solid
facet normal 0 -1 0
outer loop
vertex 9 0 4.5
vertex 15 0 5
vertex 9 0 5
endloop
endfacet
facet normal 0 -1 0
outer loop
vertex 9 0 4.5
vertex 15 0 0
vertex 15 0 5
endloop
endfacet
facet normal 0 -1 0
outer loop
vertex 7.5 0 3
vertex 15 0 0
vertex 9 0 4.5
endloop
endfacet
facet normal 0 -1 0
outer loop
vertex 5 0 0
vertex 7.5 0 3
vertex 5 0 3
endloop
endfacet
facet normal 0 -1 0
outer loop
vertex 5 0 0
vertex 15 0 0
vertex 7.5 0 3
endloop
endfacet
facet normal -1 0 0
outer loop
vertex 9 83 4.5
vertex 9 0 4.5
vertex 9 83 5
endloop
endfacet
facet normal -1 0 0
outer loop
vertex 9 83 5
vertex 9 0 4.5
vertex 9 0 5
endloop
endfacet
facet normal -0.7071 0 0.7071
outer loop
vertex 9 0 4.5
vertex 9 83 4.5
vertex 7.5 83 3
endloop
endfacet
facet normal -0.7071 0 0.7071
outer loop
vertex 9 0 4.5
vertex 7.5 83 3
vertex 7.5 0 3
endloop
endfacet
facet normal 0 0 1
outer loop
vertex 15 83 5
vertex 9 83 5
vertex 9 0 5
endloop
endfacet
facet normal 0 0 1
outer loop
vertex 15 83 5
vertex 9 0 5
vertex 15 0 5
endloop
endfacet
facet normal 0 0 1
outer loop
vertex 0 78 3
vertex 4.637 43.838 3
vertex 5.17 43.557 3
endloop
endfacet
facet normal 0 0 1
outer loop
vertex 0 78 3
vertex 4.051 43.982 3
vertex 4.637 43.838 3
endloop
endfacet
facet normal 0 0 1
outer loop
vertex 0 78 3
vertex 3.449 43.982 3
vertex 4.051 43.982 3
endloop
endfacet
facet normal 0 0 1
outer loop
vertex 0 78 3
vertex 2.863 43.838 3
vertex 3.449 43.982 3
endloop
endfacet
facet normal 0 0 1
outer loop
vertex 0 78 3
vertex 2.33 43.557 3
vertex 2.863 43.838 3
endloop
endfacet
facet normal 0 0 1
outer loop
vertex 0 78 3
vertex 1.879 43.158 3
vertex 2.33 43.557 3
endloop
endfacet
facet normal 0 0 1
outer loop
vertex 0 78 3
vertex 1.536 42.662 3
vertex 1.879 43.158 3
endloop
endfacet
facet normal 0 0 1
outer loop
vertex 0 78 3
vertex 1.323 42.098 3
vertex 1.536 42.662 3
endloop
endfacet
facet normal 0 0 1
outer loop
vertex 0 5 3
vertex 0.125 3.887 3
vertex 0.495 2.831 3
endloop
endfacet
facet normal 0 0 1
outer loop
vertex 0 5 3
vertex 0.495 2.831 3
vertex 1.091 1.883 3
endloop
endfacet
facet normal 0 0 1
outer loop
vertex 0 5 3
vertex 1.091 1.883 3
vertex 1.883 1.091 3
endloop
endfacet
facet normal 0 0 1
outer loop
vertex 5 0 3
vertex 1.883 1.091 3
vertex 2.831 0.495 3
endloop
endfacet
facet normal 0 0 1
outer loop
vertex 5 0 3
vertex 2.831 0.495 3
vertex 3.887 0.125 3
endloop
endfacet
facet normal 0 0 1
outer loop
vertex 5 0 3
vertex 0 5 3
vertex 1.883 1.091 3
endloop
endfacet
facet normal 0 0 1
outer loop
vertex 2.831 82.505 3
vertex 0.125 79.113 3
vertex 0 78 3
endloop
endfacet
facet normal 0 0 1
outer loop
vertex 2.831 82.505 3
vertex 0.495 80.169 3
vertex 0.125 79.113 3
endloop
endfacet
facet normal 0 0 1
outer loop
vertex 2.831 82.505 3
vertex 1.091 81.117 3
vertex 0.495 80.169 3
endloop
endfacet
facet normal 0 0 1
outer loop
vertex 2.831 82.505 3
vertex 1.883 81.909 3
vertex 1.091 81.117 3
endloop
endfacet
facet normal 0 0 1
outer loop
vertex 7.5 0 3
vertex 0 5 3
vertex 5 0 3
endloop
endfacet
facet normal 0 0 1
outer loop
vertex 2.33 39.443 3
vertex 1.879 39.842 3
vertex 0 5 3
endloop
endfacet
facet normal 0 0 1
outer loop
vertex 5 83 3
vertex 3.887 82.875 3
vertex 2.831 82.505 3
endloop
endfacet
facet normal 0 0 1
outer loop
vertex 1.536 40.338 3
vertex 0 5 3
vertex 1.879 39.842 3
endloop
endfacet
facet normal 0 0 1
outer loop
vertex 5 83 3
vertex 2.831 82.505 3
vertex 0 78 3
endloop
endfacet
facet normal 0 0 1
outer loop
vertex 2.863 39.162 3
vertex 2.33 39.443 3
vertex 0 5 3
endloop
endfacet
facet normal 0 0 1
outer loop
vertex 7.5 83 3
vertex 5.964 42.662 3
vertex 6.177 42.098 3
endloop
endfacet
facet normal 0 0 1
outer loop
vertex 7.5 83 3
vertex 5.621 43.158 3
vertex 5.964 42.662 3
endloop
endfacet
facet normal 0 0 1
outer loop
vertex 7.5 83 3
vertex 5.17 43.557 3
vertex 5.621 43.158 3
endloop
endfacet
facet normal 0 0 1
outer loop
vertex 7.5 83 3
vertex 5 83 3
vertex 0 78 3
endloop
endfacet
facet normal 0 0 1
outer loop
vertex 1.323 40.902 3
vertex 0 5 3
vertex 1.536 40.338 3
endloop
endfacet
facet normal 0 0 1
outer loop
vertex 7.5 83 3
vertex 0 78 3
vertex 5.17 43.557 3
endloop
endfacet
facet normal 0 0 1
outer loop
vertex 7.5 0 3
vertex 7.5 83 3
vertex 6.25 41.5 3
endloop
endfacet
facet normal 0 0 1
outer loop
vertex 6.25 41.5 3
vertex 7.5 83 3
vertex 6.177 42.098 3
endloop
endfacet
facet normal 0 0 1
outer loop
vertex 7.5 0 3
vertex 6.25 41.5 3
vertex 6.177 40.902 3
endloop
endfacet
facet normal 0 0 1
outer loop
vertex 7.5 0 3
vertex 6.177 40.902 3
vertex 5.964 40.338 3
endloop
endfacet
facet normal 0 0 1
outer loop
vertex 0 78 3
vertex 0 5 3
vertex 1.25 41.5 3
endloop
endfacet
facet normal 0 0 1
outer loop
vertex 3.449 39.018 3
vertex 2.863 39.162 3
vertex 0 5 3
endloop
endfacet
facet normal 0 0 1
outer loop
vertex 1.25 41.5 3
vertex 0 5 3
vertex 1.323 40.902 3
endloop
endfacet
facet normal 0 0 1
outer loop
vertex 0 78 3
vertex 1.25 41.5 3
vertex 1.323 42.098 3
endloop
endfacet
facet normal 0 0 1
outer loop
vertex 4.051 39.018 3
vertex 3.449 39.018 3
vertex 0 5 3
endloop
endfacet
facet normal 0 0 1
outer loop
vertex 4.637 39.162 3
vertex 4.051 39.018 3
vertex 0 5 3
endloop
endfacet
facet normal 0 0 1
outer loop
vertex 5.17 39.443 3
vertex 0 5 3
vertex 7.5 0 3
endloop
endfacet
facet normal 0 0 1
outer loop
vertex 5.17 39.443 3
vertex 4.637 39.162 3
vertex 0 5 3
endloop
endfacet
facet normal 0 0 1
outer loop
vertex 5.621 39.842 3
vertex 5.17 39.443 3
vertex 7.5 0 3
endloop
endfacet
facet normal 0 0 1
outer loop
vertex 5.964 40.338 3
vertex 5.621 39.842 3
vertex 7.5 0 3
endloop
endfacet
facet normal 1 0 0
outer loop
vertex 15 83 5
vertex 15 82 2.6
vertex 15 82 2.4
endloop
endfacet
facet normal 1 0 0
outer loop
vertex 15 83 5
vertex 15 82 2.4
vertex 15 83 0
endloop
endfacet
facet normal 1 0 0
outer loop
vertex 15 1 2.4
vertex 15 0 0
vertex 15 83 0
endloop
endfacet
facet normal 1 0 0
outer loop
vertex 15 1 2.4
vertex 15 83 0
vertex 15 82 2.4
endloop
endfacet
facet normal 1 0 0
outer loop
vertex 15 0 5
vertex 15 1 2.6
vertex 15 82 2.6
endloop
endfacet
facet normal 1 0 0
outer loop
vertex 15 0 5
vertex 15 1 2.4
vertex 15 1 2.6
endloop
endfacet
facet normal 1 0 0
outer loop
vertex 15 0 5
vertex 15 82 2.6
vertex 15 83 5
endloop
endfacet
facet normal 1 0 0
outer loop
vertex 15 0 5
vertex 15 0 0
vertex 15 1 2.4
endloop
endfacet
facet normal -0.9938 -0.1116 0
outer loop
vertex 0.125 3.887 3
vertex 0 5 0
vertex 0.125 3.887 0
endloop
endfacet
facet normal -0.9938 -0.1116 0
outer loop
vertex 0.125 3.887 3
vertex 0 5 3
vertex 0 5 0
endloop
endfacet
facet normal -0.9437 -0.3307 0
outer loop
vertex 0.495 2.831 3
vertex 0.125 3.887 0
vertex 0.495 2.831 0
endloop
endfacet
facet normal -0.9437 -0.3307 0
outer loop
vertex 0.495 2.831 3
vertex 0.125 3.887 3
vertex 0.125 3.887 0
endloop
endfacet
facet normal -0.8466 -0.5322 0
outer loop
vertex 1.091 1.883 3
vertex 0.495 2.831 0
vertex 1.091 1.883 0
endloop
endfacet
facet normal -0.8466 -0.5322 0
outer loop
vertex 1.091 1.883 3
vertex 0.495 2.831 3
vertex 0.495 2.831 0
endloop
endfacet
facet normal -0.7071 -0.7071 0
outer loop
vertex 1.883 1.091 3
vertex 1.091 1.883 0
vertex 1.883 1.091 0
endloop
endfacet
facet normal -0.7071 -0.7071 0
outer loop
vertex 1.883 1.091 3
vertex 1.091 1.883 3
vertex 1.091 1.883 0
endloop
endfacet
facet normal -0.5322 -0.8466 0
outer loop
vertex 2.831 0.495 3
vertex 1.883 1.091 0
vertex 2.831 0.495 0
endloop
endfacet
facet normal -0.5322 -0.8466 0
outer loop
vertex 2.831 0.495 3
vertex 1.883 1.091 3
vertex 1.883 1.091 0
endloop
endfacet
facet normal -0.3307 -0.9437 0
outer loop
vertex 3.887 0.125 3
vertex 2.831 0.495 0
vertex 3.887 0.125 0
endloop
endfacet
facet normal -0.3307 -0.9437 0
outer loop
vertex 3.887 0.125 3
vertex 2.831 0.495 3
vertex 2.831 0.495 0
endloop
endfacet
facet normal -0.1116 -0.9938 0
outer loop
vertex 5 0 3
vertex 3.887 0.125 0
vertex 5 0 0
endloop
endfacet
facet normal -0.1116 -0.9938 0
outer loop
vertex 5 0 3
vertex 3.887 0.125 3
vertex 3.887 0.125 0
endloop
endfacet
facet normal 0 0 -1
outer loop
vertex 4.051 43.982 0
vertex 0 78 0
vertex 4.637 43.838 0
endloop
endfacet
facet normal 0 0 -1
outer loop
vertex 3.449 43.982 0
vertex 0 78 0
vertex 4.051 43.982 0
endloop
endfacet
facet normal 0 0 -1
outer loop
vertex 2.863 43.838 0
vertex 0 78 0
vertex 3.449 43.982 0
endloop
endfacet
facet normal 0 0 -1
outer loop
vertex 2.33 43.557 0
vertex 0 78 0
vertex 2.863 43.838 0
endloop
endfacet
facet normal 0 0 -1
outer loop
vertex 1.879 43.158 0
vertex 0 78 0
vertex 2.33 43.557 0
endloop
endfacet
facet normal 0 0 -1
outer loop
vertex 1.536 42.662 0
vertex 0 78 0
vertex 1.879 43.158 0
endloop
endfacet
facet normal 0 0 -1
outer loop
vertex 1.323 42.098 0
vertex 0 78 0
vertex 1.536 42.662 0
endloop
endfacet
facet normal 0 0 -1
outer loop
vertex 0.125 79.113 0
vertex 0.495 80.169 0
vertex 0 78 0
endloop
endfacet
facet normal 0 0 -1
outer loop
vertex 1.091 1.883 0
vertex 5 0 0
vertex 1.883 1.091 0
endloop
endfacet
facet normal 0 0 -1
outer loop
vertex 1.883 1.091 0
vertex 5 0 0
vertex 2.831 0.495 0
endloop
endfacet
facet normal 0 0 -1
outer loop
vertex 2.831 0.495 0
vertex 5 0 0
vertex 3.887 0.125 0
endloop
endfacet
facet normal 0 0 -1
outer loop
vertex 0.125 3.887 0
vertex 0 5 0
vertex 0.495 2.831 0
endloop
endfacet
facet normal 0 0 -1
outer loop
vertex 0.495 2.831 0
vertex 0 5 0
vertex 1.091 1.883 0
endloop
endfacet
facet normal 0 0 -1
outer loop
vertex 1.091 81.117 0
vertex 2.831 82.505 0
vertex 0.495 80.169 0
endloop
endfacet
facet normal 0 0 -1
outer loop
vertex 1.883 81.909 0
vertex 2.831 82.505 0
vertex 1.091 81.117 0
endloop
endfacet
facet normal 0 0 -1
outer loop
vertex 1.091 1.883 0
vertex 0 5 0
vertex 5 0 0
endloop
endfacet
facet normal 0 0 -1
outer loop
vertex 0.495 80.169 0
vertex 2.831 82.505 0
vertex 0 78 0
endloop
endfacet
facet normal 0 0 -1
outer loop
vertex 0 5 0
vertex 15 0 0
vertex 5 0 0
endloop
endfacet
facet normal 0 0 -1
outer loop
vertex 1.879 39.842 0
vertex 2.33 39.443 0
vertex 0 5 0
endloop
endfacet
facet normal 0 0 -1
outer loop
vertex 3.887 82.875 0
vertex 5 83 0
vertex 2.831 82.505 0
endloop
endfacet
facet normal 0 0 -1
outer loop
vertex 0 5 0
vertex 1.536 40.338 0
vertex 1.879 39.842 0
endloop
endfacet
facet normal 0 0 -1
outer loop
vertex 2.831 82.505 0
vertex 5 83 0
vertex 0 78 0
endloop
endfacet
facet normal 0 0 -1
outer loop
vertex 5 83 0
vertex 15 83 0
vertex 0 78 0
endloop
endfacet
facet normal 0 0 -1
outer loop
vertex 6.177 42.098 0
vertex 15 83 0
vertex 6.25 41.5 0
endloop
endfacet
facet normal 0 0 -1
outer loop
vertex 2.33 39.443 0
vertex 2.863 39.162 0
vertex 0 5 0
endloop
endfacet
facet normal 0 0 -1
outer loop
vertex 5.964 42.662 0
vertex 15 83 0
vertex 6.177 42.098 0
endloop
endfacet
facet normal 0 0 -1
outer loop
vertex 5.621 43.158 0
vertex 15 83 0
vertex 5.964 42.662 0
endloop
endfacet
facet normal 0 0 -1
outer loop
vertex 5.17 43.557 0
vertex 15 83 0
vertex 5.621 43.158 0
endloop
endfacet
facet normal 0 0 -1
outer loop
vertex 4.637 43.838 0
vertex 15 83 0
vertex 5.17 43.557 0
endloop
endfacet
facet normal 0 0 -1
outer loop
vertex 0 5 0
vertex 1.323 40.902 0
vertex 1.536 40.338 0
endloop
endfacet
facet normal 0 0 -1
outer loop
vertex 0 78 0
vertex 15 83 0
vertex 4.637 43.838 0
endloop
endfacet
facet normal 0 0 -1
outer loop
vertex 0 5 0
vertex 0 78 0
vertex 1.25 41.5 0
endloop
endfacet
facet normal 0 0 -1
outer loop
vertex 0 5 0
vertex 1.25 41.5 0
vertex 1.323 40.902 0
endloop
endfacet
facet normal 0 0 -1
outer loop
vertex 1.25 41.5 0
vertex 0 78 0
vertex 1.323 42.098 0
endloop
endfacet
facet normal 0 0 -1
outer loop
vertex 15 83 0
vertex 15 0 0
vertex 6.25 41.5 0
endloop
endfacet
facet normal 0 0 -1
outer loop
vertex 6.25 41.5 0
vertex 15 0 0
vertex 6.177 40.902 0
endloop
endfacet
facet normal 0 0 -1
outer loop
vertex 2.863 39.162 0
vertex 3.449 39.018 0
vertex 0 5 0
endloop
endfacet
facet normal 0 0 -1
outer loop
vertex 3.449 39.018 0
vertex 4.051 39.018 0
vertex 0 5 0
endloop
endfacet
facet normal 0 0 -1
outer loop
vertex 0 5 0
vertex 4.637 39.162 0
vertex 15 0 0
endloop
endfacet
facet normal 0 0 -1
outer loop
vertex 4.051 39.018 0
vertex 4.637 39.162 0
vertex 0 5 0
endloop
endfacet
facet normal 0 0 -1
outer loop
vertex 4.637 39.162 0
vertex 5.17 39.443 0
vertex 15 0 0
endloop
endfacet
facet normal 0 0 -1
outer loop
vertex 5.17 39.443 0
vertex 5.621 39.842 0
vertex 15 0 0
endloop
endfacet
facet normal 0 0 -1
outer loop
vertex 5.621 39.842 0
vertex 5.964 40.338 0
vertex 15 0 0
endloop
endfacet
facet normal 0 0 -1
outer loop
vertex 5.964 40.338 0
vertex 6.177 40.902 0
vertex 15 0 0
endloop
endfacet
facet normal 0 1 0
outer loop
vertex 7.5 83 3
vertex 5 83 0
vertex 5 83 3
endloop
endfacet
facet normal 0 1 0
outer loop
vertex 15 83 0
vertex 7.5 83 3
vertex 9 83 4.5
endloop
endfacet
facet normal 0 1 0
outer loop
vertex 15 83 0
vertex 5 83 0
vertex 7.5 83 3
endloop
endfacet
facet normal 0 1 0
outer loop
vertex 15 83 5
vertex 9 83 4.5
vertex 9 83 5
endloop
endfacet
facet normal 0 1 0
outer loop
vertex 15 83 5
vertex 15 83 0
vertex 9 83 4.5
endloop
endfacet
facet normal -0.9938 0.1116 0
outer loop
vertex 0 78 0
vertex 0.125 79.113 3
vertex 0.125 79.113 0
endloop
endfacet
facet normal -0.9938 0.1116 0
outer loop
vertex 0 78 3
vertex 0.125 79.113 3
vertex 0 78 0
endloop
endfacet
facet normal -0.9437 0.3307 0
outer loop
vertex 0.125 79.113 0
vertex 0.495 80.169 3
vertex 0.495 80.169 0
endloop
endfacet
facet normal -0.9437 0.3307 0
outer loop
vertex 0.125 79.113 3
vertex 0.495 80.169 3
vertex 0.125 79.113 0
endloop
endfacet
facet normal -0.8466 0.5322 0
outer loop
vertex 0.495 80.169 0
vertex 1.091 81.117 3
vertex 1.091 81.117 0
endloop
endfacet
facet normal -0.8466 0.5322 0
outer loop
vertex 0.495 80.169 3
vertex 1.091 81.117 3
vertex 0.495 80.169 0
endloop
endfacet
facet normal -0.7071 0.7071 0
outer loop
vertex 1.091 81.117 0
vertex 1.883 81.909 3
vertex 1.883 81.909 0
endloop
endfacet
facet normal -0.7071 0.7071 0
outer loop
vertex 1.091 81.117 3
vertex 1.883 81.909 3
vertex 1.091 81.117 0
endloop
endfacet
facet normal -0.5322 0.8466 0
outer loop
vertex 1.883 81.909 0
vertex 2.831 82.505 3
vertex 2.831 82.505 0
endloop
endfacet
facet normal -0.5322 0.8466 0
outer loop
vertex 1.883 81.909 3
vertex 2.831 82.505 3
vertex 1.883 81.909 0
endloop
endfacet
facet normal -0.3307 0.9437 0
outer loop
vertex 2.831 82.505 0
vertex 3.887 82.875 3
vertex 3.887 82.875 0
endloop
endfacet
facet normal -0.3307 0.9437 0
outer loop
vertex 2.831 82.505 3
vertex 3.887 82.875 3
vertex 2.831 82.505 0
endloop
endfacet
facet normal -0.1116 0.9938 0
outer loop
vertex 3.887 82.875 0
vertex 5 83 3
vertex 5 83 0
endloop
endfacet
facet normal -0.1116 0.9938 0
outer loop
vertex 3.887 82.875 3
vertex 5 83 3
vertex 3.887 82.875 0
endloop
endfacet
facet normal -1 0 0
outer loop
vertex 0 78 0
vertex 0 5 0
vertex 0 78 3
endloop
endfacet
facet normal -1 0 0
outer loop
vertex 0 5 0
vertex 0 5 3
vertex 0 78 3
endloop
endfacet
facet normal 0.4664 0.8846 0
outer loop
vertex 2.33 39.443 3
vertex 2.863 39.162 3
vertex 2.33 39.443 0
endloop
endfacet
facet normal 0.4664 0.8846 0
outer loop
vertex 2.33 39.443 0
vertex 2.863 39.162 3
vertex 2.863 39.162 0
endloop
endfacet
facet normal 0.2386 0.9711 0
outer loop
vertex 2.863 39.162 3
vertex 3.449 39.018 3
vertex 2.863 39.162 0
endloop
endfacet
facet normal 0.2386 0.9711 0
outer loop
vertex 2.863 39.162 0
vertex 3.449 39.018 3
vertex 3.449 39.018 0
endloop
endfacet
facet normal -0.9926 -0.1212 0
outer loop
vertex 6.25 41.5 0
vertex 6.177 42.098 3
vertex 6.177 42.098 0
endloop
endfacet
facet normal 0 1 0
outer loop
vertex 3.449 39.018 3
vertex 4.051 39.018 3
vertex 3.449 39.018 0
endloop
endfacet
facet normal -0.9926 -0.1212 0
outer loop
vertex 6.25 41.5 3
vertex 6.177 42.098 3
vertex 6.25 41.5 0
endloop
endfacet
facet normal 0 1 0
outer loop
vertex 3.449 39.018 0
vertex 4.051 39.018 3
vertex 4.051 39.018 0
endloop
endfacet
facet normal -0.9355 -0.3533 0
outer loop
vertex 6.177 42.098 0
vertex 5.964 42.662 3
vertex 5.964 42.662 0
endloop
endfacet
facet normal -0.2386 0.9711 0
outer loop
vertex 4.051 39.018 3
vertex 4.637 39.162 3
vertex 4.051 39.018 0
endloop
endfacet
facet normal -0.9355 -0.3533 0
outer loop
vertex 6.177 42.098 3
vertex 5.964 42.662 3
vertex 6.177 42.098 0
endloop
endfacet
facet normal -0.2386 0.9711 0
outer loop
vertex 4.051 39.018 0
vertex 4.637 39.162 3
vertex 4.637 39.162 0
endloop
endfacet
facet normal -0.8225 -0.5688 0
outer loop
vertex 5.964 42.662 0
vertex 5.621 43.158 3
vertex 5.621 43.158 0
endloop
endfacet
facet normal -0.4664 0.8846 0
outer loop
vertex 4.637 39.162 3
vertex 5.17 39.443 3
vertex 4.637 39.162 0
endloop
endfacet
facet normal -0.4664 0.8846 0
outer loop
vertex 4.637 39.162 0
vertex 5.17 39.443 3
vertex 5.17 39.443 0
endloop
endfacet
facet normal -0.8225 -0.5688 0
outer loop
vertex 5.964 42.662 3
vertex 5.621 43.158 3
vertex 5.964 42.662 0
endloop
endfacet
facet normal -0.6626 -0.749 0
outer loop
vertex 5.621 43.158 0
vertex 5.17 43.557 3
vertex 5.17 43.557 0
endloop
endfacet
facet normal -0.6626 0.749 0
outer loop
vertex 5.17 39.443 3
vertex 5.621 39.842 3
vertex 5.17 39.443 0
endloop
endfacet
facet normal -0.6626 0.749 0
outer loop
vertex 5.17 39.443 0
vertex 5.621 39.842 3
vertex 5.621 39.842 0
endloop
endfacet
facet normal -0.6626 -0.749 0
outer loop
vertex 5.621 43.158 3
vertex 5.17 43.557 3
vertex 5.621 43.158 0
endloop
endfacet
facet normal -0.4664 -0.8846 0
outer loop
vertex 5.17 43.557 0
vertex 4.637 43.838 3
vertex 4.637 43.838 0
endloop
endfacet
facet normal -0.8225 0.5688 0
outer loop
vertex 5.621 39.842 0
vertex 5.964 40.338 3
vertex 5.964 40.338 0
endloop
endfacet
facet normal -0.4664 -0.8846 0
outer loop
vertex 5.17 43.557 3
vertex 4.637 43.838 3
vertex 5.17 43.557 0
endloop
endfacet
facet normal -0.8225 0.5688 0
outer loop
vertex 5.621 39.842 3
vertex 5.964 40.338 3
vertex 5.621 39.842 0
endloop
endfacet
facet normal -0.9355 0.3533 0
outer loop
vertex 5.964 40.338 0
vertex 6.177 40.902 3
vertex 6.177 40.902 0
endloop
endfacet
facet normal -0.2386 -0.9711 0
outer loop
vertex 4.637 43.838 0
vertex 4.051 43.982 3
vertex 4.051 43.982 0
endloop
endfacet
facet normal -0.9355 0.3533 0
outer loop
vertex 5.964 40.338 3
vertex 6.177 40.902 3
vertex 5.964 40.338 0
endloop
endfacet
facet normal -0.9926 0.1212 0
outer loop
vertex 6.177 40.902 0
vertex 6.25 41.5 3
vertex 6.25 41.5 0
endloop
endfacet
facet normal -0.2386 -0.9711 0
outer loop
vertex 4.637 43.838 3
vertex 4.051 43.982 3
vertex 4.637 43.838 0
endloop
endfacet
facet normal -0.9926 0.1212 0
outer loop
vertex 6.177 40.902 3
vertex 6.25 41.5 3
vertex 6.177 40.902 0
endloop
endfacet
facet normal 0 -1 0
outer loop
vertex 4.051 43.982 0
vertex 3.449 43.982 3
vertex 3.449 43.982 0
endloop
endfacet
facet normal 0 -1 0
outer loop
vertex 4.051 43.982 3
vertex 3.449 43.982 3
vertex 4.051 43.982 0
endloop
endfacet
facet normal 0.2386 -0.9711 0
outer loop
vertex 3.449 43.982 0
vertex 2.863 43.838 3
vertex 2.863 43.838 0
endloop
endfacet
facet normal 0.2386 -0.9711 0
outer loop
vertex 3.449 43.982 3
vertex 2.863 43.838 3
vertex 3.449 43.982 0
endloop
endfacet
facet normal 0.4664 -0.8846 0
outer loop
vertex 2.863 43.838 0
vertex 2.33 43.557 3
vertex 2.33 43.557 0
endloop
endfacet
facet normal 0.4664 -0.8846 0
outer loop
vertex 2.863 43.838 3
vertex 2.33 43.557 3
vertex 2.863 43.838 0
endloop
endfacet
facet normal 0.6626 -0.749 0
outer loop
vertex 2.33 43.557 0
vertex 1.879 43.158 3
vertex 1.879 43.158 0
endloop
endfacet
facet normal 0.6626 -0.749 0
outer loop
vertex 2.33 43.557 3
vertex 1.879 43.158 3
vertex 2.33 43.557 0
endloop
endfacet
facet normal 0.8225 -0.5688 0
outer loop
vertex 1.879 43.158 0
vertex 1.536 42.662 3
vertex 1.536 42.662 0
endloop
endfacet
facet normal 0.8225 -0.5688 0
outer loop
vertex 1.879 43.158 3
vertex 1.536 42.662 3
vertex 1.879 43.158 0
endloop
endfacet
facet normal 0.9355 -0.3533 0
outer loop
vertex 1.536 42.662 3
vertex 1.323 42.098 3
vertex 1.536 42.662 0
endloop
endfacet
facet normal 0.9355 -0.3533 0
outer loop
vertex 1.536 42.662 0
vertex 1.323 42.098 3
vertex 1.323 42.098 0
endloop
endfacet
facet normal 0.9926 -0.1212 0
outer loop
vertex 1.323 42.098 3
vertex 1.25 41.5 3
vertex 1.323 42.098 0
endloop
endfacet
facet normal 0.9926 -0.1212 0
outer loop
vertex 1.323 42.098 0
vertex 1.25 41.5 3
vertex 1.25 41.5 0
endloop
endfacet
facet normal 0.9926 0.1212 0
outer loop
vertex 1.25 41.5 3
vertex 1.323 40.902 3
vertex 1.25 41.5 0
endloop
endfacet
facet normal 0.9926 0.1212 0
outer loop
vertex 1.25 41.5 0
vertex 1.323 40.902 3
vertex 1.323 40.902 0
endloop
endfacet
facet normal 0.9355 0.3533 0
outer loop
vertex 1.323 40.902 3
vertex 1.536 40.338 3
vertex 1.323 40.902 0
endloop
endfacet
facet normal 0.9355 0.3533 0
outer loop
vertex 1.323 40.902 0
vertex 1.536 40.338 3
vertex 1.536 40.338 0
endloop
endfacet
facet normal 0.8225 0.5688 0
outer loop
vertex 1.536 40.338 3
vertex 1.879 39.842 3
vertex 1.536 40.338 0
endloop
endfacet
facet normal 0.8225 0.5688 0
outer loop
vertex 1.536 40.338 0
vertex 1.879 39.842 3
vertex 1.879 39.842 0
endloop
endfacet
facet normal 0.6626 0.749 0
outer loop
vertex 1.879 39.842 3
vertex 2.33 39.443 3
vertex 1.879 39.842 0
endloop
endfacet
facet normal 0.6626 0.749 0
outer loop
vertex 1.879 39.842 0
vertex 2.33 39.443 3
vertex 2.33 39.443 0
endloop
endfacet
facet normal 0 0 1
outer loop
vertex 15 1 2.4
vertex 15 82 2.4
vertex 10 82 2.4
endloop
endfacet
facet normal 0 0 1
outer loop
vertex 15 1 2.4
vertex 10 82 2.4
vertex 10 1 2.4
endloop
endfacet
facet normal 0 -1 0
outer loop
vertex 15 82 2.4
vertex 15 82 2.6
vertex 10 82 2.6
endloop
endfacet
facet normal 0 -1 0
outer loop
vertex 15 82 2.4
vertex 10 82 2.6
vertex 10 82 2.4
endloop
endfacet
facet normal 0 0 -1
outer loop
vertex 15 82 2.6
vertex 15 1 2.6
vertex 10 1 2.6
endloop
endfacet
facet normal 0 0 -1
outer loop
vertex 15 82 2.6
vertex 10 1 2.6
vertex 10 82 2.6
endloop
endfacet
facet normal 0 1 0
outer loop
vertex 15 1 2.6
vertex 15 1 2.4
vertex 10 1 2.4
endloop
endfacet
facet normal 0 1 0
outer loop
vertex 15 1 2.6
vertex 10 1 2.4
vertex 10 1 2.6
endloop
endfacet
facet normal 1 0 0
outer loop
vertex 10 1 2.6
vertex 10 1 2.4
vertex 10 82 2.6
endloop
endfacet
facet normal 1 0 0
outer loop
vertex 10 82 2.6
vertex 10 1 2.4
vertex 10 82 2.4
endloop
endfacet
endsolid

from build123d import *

# Parameters (mm, degrees)
BOX_W           = 15
BOX_H           = 83
BOX_DEPTH       = 3
FILLET_R        = 5
SKETCH_W        = 6
SKETCH_H        = 83
PAD_DEPTH       = 2
SKETCH001_W     = 81
SKETCH001_H     = 0.2
POCKET_DEPTH    = 5
CHAMFER_SIZE    = 1.5
SKETCH002_R     = 2.5
POCKET001_DEPTH = 5


with BuildPart() as part:
    # Box → Box (new body)
    with BuildSketch(Plane.XY):
        with Locations((7.5, 41.5)):
            Rectangle(BOX_W, BOX_H)
    extrude(amount=BOX_DEPTH)

    # Fillet
    fillet_edges = [part.edges().sort_by_distance(p)[0] for p in [
        (0, 0, 1.5),
        (0, 83, 1.5),
    ]]
    fillet(fillet_edges, radius=FILLET_R)

    # Sketch (on Face2 of BaseFeature) → Pad (new body)
    with BuildSketch(Plane.XY.offset(3)):
        with Locations((12, 41.5)):
            Rectangle(SKETCH_W, SKETCH_H)
    extrude(amount=PAD_DEPTH)

    # Sketch001 (on Face10 of Pad) → Pocket (cut)
    with BuildSketch(Plane.YZ.offset(15)):
        with Locations((41.5, 2.5)):
            Rectangle(SKETCH001_W, SKETCH001_H)
    extrude(amount=-POCKET_DEPTH, mode=Mode.SUBTRACT)

    # Chamfer
    chamfer_edges = [part.edges().sort_by_distance(p)[0] for p in [
        (9, 41.5, 3),
    ]]
    chamfer(chamfer_edges, length=CHAMFER_SIZE)

    # Sketch002 (on Face5 of Chamfer) → Pocket001 (cut)
    with BuildSketch(Plane.XY.offset(3)):
        with Locations((3.75, 41.5)):
            Circle(SKETCH002_R)
    extrude(amount=-POCKET001_DEPTH, mode=Mode.SUBTRACT)


solid = part.part
